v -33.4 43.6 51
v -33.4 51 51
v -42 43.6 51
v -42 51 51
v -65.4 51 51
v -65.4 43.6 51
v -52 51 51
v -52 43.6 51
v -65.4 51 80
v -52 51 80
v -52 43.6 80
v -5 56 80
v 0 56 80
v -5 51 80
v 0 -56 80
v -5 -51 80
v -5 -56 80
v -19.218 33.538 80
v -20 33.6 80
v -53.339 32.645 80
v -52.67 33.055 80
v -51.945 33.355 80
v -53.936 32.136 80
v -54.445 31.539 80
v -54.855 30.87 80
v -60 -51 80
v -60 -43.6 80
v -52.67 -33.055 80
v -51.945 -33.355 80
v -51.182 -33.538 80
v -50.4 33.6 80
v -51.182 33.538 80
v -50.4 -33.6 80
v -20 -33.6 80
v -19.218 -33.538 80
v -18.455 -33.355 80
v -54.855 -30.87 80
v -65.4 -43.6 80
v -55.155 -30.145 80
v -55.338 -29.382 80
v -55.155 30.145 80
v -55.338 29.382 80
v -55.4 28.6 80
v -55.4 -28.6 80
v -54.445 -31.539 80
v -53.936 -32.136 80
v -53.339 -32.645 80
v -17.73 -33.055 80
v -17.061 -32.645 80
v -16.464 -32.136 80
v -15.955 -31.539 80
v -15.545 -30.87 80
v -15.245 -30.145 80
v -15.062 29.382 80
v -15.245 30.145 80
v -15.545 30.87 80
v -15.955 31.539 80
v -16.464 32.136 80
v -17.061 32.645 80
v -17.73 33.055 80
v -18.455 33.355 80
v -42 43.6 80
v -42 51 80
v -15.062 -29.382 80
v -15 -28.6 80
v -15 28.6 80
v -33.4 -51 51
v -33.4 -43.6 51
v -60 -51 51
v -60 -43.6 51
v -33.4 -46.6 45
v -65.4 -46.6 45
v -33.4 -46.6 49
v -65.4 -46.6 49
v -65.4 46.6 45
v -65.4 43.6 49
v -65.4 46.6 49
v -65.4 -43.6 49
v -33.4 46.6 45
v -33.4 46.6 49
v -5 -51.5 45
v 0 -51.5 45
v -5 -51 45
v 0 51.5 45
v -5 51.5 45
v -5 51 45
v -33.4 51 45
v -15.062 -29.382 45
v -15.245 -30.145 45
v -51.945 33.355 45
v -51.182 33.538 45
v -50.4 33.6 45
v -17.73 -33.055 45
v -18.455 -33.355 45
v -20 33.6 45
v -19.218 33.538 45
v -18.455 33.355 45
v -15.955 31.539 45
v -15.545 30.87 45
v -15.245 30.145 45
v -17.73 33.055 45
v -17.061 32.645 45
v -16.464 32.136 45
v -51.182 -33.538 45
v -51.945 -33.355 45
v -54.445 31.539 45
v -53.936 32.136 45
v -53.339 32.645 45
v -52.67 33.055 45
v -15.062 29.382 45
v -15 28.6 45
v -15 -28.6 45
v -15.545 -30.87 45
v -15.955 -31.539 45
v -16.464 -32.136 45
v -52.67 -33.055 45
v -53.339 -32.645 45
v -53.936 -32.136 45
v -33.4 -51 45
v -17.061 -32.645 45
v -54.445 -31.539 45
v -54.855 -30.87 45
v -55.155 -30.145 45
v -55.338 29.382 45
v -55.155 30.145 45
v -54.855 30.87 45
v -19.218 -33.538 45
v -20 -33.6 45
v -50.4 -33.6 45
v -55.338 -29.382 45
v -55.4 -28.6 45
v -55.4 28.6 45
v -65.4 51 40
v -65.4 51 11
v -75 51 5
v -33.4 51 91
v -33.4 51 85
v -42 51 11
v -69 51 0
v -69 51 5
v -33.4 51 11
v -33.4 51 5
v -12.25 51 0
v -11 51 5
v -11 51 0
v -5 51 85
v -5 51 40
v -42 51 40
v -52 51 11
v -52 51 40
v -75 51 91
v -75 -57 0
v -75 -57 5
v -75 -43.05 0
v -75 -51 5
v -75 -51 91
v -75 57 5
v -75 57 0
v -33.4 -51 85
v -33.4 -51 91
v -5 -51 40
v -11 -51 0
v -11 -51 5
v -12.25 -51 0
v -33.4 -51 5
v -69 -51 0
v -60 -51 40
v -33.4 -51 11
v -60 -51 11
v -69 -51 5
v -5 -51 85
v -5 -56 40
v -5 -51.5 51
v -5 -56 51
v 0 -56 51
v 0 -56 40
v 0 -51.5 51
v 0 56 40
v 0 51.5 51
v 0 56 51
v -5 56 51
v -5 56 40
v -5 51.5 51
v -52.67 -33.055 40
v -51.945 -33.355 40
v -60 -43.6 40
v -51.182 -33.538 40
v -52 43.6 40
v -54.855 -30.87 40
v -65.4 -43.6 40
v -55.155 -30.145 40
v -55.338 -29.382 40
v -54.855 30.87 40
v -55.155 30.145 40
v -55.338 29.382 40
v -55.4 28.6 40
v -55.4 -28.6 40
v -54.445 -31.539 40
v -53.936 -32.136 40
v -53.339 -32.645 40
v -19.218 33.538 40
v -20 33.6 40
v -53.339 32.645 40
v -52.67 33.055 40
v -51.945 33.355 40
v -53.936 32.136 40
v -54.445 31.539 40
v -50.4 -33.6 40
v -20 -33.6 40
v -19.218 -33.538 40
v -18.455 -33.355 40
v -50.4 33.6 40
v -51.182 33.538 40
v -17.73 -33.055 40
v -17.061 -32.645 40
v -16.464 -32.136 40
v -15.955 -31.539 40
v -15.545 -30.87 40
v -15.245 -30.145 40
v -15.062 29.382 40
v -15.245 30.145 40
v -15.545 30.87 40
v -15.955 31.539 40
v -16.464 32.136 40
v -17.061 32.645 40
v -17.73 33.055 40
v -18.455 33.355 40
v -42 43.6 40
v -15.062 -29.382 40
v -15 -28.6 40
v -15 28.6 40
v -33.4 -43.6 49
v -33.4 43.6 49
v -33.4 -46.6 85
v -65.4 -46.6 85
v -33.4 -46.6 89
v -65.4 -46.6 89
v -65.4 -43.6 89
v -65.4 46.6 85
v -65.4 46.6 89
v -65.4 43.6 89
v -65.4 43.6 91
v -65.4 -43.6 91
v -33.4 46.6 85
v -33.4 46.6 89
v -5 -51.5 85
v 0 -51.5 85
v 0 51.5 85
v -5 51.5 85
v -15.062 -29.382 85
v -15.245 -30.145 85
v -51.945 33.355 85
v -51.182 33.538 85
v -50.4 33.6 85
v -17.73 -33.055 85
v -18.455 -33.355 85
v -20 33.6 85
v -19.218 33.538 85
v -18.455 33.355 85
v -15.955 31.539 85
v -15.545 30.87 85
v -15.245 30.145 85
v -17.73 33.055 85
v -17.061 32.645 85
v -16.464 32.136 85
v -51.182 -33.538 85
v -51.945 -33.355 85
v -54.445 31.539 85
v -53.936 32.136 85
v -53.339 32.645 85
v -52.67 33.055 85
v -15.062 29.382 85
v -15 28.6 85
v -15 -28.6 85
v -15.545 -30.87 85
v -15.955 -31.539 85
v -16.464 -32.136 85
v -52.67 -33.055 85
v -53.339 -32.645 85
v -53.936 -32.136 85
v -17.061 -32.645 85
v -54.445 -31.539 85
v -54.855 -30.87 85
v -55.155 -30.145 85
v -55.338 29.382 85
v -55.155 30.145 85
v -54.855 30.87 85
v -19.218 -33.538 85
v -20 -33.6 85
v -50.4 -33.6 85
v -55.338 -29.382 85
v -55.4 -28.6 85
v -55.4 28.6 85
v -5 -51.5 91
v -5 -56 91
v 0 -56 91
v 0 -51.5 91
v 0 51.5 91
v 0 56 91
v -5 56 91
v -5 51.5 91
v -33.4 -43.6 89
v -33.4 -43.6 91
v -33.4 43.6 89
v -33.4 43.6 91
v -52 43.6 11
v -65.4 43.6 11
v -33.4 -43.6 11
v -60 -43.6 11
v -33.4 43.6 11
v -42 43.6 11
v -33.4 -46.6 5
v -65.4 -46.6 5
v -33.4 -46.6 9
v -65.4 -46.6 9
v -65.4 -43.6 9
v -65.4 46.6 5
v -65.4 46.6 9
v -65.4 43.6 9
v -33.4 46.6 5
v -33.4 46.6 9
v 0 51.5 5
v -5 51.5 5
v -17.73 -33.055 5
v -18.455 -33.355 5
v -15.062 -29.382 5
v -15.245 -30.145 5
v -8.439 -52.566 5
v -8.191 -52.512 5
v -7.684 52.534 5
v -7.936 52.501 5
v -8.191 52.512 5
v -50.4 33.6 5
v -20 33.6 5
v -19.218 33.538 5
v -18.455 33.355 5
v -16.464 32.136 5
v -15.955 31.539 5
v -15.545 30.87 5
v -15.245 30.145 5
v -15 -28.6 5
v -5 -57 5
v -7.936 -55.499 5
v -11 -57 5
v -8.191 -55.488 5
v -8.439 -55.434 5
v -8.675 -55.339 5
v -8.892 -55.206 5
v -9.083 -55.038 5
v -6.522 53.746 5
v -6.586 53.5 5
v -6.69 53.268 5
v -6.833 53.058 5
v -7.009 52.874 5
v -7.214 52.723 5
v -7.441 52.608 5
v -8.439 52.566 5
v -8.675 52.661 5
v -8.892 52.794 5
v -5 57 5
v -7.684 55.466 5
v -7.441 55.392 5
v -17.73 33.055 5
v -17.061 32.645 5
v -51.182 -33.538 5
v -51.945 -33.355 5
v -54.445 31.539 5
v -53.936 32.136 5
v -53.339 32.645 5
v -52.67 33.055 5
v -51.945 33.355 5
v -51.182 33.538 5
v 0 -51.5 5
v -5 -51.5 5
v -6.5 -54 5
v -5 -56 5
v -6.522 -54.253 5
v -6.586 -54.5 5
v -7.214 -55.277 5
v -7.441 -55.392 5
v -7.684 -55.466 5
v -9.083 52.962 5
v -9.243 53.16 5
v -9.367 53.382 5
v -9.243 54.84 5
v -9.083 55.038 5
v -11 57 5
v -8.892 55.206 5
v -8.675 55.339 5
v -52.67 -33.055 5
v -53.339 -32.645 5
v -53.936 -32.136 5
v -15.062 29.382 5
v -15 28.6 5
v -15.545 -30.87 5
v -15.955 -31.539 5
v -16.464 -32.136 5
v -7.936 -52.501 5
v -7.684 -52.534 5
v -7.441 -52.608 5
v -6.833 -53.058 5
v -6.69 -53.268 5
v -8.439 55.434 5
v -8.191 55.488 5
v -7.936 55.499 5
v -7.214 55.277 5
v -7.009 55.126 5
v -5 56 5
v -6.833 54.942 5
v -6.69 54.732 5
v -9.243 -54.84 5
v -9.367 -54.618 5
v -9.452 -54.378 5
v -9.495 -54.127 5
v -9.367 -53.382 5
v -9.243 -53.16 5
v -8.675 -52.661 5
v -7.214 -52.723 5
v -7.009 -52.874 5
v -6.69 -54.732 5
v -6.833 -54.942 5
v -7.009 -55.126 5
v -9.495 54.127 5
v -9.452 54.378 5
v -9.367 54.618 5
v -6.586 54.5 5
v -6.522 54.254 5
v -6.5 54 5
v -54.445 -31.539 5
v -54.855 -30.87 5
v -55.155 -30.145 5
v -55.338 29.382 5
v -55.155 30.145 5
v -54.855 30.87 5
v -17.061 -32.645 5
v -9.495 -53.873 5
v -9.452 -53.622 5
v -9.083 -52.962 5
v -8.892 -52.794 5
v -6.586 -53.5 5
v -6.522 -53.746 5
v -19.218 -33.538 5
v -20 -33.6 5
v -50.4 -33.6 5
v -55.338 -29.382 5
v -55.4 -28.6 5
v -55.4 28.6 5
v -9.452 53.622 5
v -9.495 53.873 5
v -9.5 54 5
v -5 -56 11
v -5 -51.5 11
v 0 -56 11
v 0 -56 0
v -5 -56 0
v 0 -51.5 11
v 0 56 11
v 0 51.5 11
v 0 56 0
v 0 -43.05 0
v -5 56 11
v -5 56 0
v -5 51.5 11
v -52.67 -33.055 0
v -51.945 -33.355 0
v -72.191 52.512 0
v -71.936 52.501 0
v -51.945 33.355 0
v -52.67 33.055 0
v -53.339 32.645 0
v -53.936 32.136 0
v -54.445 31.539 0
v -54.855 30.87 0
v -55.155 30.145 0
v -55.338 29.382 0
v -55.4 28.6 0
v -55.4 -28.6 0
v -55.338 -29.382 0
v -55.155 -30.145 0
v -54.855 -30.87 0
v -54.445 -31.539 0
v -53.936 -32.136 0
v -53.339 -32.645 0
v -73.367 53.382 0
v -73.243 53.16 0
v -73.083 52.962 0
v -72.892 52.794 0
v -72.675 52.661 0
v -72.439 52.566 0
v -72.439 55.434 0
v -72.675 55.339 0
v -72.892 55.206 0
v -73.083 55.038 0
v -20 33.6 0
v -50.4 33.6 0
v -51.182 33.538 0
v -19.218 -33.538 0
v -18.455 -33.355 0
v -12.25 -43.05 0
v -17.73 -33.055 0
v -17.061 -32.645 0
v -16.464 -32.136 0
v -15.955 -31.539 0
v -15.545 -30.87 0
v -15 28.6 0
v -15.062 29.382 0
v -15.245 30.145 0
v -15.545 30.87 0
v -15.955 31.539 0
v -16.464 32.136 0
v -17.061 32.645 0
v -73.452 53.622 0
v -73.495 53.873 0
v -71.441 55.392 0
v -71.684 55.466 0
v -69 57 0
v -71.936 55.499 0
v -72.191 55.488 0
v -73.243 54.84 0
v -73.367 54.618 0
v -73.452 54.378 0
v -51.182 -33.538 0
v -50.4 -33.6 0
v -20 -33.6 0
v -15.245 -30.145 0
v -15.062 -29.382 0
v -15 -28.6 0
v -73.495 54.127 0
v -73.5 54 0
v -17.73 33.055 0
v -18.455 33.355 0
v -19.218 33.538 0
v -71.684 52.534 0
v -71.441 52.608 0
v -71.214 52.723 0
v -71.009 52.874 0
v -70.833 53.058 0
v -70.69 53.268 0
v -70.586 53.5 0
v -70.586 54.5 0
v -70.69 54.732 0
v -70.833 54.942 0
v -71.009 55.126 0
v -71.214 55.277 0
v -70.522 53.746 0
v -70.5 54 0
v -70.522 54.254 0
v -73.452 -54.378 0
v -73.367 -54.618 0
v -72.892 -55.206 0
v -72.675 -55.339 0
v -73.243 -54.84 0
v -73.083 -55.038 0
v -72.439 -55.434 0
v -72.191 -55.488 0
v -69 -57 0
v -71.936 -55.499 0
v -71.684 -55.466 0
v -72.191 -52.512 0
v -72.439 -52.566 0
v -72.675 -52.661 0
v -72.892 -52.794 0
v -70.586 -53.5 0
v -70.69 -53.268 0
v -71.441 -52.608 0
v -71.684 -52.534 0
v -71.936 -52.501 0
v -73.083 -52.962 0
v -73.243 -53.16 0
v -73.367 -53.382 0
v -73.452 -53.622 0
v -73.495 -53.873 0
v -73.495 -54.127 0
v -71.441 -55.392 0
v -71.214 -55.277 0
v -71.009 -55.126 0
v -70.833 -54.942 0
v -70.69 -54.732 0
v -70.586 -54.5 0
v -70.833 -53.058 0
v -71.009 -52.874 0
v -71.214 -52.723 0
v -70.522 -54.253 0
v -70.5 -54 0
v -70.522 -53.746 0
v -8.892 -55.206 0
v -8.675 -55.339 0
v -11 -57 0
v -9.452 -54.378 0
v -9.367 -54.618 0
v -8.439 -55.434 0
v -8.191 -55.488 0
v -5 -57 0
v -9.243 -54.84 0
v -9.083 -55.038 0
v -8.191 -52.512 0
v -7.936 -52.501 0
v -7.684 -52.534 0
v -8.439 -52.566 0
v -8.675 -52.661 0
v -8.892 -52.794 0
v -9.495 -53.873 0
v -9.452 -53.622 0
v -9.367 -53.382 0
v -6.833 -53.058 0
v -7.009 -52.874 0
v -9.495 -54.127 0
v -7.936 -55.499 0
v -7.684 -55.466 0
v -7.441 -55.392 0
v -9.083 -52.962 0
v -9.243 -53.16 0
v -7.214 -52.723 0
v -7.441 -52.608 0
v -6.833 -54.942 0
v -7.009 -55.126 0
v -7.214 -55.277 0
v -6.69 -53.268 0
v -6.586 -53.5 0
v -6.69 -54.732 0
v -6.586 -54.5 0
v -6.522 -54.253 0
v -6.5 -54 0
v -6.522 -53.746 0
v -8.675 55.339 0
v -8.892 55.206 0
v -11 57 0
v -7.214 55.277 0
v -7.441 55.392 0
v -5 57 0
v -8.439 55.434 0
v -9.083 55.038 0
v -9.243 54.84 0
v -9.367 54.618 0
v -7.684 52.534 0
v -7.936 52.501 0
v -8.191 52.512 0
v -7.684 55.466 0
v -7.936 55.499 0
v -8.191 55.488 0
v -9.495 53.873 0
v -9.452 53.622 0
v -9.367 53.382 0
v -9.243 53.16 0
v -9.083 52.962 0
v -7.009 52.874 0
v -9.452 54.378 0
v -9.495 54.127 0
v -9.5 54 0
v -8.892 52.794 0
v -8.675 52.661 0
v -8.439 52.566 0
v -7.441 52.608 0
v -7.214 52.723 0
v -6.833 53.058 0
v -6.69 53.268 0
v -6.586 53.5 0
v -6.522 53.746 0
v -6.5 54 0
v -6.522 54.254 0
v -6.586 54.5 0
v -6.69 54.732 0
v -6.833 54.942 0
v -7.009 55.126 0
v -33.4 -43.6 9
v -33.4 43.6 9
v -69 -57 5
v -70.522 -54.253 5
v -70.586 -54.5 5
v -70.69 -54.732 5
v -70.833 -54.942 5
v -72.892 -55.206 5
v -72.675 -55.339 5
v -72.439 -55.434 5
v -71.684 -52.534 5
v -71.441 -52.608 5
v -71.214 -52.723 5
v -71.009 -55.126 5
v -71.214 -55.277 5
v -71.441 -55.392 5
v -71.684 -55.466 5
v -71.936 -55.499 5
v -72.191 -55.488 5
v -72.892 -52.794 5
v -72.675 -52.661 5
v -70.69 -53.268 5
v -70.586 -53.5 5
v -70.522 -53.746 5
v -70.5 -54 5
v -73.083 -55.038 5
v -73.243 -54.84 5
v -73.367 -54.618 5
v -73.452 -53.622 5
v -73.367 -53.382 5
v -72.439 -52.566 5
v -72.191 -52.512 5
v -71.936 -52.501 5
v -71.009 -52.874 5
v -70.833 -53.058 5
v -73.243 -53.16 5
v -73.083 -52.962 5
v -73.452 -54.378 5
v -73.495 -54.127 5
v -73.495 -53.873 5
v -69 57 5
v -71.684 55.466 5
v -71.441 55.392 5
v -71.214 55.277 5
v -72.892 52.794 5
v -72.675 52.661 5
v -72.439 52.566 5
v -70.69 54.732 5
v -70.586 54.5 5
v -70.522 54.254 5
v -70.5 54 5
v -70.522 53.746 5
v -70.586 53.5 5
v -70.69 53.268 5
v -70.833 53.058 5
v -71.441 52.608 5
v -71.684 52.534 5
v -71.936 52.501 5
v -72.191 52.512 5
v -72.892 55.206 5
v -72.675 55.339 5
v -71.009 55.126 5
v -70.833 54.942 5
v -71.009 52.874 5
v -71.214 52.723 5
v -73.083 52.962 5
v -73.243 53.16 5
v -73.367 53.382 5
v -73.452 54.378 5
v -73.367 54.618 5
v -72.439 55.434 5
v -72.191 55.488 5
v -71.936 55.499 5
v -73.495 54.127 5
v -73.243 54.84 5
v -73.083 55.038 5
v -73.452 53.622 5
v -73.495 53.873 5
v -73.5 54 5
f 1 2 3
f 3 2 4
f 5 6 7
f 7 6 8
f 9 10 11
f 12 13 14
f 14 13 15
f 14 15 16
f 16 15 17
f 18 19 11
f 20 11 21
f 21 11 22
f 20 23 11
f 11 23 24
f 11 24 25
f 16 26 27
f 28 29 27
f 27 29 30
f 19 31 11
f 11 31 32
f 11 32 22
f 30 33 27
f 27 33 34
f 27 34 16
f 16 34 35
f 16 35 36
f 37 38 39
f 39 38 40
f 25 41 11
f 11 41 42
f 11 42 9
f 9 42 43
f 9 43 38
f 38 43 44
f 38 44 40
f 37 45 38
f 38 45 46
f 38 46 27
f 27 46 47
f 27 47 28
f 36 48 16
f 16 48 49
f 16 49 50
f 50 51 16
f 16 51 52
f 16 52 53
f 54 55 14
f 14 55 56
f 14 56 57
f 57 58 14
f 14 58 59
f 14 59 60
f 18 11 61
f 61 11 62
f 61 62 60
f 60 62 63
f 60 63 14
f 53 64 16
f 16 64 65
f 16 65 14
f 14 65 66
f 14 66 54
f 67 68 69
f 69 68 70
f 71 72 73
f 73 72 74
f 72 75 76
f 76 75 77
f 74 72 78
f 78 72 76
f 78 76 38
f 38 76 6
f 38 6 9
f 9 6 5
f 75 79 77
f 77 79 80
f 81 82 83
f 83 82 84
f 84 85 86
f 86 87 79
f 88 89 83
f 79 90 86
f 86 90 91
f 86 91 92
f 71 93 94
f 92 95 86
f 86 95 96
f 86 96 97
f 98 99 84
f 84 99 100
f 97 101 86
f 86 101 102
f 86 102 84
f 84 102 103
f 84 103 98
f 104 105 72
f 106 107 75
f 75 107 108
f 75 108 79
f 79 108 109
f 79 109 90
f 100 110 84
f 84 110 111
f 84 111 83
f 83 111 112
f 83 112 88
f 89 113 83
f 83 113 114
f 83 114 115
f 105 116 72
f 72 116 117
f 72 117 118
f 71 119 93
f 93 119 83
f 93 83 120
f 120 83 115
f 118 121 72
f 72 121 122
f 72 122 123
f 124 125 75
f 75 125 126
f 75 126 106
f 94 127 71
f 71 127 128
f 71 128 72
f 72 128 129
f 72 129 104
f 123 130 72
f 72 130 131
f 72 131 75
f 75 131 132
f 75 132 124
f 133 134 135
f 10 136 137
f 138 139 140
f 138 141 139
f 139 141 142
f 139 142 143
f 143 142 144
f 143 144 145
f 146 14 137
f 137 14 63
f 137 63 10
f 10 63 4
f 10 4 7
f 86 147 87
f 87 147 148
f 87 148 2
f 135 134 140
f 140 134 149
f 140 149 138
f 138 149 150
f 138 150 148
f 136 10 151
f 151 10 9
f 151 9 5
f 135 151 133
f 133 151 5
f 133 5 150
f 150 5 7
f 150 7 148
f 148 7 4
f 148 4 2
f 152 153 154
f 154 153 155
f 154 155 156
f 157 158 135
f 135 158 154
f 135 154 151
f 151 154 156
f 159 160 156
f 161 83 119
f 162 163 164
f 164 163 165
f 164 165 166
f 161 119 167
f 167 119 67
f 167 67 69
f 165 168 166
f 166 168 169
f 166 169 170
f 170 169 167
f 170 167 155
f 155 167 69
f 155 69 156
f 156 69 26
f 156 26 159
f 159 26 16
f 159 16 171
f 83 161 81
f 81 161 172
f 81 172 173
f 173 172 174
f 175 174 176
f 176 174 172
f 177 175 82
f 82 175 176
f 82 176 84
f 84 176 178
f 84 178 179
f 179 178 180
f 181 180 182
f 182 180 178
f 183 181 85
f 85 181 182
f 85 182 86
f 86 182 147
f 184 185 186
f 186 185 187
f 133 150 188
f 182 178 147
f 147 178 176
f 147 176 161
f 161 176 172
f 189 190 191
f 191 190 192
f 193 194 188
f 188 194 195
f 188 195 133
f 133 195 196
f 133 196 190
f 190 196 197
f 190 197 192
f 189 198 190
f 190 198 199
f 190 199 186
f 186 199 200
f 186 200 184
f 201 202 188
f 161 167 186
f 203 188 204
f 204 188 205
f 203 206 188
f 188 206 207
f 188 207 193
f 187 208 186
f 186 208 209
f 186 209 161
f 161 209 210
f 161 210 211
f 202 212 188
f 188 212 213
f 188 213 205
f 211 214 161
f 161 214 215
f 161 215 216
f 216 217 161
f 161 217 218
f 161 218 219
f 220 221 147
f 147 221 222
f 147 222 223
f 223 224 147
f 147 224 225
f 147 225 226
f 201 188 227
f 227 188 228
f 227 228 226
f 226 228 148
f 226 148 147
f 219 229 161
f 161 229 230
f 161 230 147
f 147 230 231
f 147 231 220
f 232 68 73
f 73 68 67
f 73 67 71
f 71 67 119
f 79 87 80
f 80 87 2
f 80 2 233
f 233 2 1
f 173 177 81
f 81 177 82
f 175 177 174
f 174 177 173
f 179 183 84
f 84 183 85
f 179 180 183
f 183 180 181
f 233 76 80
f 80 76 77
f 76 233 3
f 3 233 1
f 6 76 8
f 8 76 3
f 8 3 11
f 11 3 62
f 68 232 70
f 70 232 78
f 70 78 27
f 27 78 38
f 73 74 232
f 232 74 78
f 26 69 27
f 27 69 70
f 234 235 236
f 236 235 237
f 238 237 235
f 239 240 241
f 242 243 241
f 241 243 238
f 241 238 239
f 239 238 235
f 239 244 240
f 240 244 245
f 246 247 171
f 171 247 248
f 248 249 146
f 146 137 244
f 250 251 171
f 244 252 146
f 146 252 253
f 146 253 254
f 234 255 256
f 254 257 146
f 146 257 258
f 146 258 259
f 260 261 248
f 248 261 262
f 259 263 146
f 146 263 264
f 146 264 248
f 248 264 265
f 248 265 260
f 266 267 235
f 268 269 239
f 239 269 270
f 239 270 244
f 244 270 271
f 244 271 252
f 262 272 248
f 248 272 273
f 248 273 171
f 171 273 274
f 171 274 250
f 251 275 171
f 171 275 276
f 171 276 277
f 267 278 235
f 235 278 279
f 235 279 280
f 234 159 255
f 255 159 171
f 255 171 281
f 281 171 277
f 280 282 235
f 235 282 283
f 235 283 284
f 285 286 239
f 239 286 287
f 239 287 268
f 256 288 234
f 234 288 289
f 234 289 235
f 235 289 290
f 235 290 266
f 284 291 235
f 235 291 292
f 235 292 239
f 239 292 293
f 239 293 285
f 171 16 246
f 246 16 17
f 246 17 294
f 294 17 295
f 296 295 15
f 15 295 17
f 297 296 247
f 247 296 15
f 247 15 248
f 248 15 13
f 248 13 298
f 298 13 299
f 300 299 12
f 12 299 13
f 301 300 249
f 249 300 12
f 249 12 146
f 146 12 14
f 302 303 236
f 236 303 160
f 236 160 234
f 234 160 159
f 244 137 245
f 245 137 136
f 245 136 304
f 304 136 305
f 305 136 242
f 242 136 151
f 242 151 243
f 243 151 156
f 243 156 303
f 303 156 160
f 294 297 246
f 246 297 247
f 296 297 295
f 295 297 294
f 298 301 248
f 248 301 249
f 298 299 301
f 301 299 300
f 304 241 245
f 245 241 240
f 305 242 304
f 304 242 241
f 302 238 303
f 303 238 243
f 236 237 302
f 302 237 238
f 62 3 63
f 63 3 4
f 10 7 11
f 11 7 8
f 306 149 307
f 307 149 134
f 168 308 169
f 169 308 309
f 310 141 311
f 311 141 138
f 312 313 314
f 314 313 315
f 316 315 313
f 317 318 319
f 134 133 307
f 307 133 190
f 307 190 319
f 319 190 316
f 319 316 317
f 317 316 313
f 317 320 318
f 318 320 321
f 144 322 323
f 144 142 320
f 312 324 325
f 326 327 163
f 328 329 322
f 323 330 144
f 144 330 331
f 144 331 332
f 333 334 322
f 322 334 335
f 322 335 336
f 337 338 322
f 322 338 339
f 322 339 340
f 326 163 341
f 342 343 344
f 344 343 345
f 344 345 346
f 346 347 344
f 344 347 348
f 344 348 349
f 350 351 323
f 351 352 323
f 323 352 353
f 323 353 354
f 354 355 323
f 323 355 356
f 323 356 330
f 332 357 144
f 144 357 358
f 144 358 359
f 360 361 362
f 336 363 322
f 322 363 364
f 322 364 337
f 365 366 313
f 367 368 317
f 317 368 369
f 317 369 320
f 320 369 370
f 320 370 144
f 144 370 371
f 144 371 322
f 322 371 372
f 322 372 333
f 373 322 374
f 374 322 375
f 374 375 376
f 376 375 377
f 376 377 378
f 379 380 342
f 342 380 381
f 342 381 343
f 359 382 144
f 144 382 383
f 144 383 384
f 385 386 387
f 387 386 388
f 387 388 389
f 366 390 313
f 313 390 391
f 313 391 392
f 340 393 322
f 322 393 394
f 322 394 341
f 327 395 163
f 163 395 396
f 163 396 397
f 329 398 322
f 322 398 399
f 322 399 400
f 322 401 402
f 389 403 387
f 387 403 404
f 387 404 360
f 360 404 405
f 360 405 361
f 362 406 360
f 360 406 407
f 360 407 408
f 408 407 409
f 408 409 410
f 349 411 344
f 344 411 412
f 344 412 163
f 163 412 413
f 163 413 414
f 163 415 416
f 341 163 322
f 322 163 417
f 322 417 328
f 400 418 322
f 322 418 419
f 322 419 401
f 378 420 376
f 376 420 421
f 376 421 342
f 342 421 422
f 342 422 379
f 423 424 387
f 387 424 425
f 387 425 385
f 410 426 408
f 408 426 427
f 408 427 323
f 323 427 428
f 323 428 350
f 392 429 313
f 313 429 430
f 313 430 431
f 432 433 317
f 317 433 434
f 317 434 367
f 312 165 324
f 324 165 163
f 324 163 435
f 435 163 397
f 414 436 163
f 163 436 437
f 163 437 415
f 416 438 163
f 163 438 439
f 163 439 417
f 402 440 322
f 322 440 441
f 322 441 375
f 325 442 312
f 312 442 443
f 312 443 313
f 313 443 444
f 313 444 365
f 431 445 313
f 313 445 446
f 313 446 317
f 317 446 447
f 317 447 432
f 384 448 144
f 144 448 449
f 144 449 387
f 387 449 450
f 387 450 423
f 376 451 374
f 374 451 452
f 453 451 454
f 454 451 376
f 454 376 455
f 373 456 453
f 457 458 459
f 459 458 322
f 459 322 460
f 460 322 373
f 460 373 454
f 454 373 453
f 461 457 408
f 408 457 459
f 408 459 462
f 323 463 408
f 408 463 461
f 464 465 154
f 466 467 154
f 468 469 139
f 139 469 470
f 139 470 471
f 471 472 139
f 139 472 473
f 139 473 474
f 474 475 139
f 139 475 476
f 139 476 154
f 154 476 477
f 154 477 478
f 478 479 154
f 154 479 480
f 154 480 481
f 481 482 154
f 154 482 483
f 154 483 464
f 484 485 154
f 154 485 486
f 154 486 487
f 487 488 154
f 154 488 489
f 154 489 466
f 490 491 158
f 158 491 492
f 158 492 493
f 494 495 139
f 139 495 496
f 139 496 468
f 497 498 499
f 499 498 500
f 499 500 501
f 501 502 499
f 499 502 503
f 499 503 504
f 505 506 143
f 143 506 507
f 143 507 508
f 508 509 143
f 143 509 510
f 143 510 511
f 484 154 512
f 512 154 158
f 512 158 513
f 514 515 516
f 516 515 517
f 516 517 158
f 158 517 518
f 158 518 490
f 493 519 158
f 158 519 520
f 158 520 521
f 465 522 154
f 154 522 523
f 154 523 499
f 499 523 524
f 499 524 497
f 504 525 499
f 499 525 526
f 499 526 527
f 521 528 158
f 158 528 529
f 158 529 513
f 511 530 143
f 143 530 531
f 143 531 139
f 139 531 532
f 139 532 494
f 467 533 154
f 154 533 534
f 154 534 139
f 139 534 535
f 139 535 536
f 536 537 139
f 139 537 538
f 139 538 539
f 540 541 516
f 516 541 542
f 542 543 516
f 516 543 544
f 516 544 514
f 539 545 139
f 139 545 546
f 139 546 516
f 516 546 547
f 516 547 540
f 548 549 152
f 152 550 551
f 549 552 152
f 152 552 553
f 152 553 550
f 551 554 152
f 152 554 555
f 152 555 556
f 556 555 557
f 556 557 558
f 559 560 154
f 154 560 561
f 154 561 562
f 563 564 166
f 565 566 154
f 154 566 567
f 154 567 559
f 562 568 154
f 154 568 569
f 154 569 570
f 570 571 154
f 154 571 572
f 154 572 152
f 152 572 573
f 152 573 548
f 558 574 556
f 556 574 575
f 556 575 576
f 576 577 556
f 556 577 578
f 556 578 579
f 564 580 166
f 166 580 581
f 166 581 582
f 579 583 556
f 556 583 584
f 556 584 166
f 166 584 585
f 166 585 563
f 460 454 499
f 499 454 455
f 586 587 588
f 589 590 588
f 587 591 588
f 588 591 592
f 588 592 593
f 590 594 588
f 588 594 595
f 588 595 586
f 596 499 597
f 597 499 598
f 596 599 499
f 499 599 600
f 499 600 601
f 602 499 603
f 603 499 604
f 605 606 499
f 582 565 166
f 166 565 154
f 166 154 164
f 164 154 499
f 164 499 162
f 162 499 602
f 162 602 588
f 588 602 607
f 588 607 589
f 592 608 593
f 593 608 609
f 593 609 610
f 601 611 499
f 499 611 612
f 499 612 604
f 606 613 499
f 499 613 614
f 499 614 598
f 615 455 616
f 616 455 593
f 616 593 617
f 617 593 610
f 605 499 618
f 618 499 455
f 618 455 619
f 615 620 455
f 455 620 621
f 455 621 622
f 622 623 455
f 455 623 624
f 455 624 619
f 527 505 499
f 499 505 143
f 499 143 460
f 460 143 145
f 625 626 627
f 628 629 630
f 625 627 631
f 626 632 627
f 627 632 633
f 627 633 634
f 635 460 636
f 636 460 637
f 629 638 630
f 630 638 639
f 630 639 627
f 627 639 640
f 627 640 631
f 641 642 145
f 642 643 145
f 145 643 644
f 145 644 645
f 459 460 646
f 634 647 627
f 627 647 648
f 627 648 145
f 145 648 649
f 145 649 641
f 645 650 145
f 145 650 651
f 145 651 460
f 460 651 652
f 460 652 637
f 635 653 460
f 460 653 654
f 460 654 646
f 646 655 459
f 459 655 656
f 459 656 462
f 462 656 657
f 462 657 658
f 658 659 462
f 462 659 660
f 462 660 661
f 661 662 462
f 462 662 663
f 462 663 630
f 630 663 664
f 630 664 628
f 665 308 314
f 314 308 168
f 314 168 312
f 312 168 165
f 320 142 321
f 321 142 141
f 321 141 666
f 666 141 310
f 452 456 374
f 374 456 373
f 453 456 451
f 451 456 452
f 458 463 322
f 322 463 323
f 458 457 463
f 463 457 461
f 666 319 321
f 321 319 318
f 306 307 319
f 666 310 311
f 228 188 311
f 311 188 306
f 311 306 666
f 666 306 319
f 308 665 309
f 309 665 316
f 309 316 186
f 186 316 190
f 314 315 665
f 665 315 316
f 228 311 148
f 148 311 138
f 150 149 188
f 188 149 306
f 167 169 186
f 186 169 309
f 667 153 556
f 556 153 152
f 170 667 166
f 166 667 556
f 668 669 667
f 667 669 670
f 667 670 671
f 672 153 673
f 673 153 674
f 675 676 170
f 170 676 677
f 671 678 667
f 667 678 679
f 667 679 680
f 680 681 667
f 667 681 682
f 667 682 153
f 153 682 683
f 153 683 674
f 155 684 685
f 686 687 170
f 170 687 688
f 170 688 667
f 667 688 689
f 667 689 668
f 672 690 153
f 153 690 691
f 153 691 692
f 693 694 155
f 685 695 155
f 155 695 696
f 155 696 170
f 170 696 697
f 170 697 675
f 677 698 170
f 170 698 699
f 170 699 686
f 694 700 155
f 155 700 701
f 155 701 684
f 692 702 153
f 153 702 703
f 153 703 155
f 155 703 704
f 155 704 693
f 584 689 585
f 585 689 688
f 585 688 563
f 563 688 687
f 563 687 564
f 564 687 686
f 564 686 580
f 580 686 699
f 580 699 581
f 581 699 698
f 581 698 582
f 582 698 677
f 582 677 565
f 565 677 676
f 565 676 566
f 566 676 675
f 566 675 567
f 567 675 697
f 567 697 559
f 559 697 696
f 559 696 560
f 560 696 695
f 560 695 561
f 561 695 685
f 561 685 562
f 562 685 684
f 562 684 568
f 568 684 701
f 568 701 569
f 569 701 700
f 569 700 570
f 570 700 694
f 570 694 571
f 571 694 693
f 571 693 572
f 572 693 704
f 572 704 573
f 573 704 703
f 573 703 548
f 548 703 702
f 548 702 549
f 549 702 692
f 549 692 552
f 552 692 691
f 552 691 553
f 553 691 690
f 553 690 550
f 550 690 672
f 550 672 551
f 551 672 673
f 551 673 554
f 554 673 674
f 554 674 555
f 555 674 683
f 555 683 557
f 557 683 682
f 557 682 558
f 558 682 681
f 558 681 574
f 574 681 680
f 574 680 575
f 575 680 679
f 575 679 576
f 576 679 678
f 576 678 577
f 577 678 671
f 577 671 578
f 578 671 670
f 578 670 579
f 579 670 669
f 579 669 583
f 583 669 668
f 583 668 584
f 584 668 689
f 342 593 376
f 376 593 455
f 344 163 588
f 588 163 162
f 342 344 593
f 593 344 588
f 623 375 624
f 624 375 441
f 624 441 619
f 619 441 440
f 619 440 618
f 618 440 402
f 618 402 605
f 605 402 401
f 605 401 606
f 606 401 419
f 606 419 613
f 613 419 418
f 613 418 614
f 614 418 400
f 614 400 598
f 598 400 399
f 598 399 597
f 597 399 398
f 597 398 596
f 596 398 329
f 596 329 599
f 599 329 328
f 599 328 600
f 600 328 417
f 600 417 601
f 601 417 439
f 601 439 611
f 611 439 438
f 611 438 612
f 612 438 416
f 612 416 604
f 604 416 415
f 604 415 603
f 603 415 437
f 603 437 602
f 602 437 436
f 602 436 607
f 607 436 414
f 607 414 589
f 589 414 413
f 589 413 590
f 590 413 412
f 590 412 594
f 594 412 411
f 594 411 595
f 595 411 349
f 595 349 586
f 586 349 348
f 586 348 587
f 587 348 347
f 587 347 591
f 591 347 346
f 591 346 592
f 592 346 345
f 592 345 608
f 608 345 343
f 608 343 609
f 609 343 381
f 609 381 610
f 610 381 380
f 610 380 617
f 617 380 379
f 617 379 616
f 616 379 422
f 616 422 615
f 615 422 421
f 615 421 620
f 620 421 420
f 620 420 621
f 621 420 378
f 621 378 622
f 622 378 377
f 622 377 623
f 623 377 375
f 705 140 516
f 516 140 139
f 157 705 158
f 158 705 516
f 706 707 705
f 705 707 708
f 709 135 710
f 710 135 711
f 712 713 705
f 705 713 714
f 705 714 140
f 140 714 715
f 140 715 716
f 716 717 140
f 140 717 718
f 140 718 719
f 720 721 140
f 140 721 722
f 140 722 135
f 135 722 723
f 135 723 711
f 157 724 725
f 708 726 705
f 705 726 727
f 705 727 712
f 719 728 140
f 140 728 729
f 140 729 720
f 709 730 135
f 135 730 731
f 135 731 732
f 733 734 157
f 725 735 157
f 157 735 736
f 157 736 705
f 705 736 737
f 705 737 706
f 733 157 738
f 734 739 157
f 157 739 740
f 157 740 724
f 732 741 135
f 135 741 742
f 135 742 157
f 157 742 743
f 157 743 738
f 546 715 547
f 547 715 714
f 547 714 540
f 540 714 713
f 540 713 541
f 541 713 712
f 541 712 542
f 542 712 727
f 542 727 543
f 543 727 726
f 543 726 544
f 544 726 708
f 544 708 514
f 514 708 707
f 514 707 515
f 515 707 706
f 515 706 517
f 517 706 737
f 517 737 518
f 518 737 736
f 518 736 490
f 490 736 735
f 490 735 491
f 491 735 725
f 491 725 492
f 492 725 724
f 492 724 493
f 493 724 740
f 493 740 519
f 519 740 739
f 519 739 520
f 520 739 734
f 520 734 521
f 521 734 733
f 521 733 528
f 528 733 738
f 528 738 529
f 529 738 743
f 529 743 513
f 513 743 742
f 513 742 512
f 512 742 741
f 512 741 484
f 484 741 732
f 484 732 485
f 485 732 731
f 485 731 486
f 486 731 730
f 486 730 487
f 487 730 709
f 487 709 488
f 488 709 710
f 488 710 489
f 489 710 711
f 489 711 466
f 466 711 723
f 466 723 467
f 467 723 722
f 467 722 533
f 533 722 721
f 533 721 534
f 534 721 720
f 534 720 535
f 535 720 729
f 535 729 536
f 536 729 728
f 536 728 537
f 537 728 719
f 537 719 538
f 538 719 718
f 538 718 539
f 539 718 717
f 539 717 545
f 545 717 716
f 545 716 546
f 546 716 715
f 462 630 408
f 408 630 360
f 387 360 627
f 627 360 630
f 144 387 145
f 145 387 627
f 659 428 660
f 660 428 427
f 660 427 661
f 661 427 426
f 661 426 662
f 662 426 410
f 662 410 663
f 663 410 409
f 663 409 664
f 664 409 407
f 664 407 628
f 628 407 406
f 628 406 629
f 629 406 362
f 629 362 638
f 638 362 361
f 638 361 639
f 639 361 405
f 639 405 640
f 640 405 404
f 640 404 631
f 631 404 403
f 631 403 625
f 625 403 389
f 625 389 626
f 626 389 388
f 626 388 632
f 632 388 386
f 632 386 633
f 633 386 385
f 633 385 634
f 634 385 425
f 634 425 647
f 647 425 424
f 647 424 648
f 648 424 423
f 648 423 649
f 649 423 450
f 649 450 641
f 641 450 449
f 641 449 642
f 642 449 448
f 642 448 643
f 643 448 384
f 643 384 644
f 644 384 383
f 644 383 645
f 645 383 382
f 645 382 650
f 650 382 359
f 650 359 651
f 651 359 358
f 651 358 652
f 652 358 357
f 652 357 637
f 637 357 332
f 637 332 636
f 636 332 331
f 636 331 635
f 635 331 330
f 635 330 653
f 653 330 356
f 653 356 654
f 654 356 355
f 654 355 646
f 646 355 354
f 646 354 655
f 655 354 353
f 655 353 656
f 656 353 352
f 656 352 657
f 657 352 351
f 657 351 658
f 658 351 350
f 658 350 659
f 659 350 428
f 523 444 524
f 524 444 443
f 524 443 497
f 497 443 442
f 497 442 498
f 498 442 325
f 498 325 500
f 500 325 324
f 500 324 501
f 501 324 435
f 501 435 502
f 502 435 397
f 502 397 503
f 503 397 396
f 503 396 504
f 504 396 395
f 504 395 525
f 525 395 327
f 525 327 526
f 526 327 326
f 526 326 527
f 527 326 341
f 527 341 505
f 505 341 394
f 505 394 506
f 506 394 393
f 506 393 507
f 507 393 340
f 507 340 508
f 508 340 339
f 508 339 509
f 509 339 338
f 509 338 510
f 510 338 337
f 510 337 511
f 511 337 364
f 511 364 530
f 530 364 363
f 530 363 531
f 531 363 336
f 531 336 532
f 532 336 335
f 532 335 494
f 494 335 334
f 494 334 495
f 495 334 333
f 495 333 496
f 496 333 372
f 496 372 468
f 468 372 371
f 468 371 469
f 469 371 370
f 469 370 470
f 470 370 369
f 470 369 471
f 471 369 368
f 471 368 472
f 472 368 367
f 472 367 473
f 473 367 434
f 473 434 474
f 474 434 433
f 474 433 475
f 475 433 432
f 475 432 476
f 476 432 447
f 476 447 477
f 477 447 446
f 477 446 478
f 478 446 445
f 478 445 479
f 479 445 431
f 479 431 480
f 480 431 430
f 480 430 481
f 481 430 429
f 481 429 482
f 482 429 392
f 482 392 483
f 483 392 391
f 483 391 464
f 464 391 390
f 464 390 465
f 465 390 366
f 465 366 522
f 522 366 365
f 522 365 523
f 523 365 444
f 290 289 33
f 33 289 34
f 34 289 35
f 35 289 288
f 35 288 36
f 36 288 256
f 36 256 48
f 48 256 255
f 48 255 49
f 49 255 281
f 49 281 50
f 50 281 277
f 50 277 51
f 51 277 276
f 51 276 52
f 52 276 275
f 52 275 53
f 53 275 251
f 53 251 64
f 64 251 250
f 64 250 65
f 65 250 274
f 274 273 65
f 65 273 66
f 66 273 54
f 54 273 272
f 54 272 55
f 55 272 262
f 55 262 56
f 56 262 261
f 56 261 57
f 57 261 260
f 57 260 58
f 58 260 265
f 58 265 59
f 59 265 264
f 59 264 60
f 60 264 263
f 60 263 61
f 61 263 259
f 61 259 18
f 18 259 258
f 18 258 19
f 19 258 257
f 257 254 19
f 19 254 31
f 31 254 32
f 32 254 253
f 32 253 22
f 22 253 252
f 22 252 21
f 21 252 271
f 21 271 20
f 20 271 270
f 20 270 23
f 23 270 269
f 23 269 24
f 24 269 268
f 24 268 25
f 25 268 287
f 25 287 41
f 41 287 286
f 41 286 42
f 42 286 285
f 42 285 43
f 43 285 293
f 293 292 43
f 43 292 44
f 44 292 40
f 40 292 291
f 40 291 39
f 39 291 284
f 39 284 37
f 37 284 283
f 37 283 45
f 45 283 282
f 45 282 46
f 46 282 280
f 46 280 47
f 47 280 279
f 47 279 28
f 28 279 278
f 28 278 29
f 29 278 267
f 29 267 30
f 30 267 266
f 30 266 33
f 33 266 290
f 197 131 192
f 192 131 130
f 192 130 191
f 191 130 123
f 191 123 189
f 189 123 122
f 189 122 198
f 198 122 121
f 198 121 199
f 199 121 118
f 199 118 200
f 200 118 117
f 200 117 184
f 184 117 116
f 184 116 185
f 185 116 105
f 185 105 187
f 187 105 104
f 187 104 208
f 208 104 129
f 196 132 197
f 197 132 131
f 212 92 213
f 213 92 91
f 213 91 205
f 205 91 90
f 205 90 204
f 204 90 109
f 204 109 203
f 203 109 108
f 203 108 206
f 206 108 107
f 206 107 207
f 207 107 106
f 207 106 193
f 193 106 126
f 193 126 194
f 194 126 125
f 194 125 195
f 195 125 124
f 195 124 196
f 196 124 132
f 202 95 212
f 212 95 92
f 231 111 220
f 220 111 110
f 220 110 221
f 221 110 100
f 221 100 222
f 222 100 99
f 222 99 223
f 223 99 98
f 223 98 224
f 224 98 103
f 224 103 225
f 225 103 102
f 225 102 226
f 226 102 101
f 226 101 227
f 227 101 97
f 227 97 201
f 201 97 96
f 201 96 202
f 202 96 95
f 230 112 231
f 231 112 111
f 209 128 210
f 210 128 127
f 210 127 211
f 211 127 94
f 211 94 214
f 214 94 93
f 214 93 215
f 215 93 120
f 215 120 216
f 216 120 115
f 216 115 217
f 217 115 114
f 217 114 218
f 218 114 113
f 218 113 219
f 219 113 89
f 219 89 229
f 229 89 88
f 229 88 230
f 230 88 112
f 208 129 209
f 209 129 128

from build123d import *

# Parameters (mm, degrees)
BOSS_EXTRUDE1_DEPTH     = 5
SKETCH4_W               = 5
SKETCH4_H               = 4.5
BOSS_EXTRUDE2_DEPTH     = 6
SKETCH5_W               = 3
SKETCH5_H               = 2
BOSS_EXTRUDE3_DEPTH     = 32
SKETCH6_W               = 6
SKETCH6_H               = 6
BOSS_EXTRUDE4_DEPTH     = 5
BOSS_EXTRUDE4_2_DEPTH   = 5
BOSS_EXTRUDE4_3_DEPTH   = 5
BOSS_EXTRUDE4_4_DEPTH   = 5
SKETCH7_R               = 1.5
CUT_EXTRUDE1_DEPTH      = 6
LPATTERN1_COUNT         = 3
LPATTERN1_PITCH         = 40
SKETCH8_W               = 10
SKETCH8_H               = 7.4
BOSS_EXTRUDE5_DEPTH     = 29
SKETCH9_W               = 10
SKETCH9_H               = 7.4
BOSS_EXTRUDE6_DEPTH     = 29
CUT_EXTRUDE2_DEPTH      = 7
CUT_EXTRUDE2_DEPTH_BACK = 86


with BuildPart() as part:
    # Sketch1 → Boss-Extrude1 (new body)
    with BuildSketch(Plane(origin=(0, 0, 0), x_dir=(0, 1, 0), z_dir=(0, 0, 1))):
        Polygon((-51, 5), (-51, 75), (51, 75), (51, 5), (56, 5), (56, 0), (-56, 0), (-56, 5), align=None)
    extrude(amount=BOSS_EXTRUDE1_DEPTH)

    # Sketch4 → Boss-Extrude2 (add)
    with BuildSketch(Plane.XY.offset(5)):
        Polygon((-75, 51), (-75, -51), (-33.4, -51), (-33.4, -46.6), (-65.4, -46.6), (-65.4, 46.6), (-33.4, 46.6), (-33.4, 51), align=None)
        with Locations((-2.5, 53.75)):
            Rectangle(SKETCH4_W, SKETCH4_H)
        with Locations((-2.5, -53.75)):
            Rectangle(SKETCH4_W, SKETCH4_H)
    extrude(amount=BOSS_EXTRUDE2_DEPTH)

    # Sketch5 → Boss-Extrude3 (add)
    with BuildSketch(Plane.YZ.offset(-65.4)):
        with Locations((-45.1, 10)):
            Rectangle(SKETCH5_W, SKETCH5_H)
        with Locations((45.1, 10)):
            Rectangle(SKETCH5_W, SKETCH5_H)
    extrude(amount=BOSS_EXTRUDE3_DEPTH)


with BuildPart() as body_2:
    # Sketch6 → Boss-Extrude4 (new body)
    with BuildSketch(Plane(origin=(0, 0, 0), x_dir=(1, 0, 0), z_dir=(0, 0, -1))):
        with Locations((-8, 54)):
            Rectangle(SKETCH6_W, SKETCH6_H)
    extrude(amount=-BOSS_EXTRUDE4_DEPTH)


with BuildPart() as body_3:
    # Sketch6 → Boss-Extrude4 2 (new body)
    with BuildSketch(Plane(origin=(0, 0, 0), x_dir=(1, 0, 0), z_dir=(0, 0, -1))):
        with Locations((-72, 54)):
            Rectangle(SKETCH6_W, SKETCH6_H)
    extrude(amount=-BOSS_EXTRUDE4_2_DEPTH)


with BuildPart() as body_4:
    # Sketch6 → Boss-Extrude4 3 (new body)
    with BuildSketch(Plane(origin=(0, 0, 0), x_dir=(1, 0, 0), z_dir=(0, 0, -1))):
        with Locations((-8, -54)):
            Rectangle(SKETCH6_W, SKETCH6_H)
    extrude(amount=-BOSS_EXTRUDE4_3_DEPTH)


with BuildPart() as body_5:
    # Sketch6 → Boss-Extrude4 4 (new body)
    with BuildSketch(Plane(origin=(0, 0, 0), x_dir=(1, 0, 0), z_dir=(0, 0, -1))):
        with Locations((-72, -54)):
            Rectangle(SKETCH6_W, SKETCH6_H)
    extrude(amount=-BOSS_EXTRUDE4_4_DEPTH)


with BuildPart() as cut_extrude1_tool:
    # Sketch7 → Cut-Extrude1 (new body, through all)
    with BuildSketch(Plane.XY.offset(5)):
        with Locations((-8, -54)):
            Circle(SKETCH7_R)
        with Locations((-72, -54)):
            Circle(SKETCH7_R)
        with Locations((-8, 54)):
            Circle(SKETCH7_R)
        with Locations((-72, 54)):
            Circle(SKETCH7_R)
    extrude(amount=-CUT_EXTRUDE1_DEPTH)


with BuildPart() as body_2_1:
    add(body_2.part)

    # Cut-Extrude1: cut by cut_extrude1_tool
    add(cut_extrude1_tool.part, mode=Mode.SUBTRACT)


with BuildPart() as body_3_1:
    add(body_3.part)

    # Cut-Extrude1: cut by cut_extrude1_tool
    add(cut_extrude1_tool.part, mode=Mode.SUBTRACT)


with BuildPart() as body_4_1:
    add(body_4.part)

    # Cut-Extrude1: cut by cut_extrude1_tool
    add(cut_extrude1_tool.part, mode=Mode.SUBTRACT)


with BuildPart() as body_5_1:
    add(body_5.part)

    # Cut-Extrude1: cut by cut_extrude1_tool
    add(cut_extrude1_tool.part, mode=Mode.SUBTRACT)


with BuildPart() as lpattern1_1:
    # LPattern1: pattern copy
    add(part.part.moved(Location(Vector(0, 0, 1) * (1 * LPATTERN1_PITCH))))



with BuildPart() as lpattern1_2:
    # LPattern1: pattern copy
    add(part.part.moved(Location(Vector(0, 0, 1) * (2 * LPATTERN1_PITCH))))


with BuildPart() as part_1:
    add(part.part)

    # Sketch8 → Boss-Extrude5 (add)
    with BuildSketch(Plane.XY.offset(11)):
        with Locations((-47, 47.3)):
            Rectangle(SKETCH8_W, SKETCH8_H)
        Polygon((-65.4, 51), (-65.4, -43.6), (-60, -43.6), (-60, -51), (-75, -51), (-75, 51), align=None)
    extrude(amount=BOSS_EXTRUDE5_DEPTH)


with BuildPart() as lpattern1_1_1:
    add(lpattern1_1.part)

    add(lpattern1_2.part)  # Boss-Extrude6 merges LPattern1_2
    # Sketch9 → Boss-Extrude6 (add)
    with BuildSketch(Plane.XY.offset(51)):
        with Locations((-47, 47.3)):
            Rectangle(SKETCH9_W, SKETCH9_H)
        Polygon((-65.4, 51), (-65.4, -43.6), (-60, -43.6), (-60, -51), (-75, -51), (-75, 51), align=None)
    extrude(amount=BOSS_EXTRUDE6_DEPTH)

    # Combine1: union part, body 3, body 2, body 5, body 4
    add(part_1.part)
    add(body_3_1.part)
    add(body_2_1.part)
    add(body_5_1.part)
    add(body_4_1.part)

    # Sketch10 → Cut-Extrude2 (cut, two sides)
    with BuildSketch(Plane.XY.offset(85)) as cut_extrude2_sk:
        with BuildLine():
            Line((-50.4, 33.6), (-20, 33.6))
            ThreePointArc((-20, 33.6), (-16.464466094, 32.135533906), (-15, 28.6))
            Line((-15, 28.6), (-15, -28.6))
            ThreePointArc((-15, -28.6), (-16.464466094, -32.135533906), (-20, -33.6))
            Line((-20, -33.6), (-50.4, -33.6))
            ThreePointArc((-50.4, -33.6), (-53.935533906, -32.135533906), (-55.4, -28.6))
            Line((-55.4, -28.6), (-55.4, 28.6))
            ThreePointArc((-55.4, 28.6), (-53.935533906, 32.135533906), (-50.4, 33.6))
        make_face()
    extrude(amount=CUT_EXTRUDE2_DEPTH, mode=Mode.SUBTRACT)
    extrude(cut_extrude2_sk.sketch, amount=-CUT_EXTRUDE2_DEPTH_BACK, mode=Mode.SUBTRACT)


solid = lpattern1_1_1.part
